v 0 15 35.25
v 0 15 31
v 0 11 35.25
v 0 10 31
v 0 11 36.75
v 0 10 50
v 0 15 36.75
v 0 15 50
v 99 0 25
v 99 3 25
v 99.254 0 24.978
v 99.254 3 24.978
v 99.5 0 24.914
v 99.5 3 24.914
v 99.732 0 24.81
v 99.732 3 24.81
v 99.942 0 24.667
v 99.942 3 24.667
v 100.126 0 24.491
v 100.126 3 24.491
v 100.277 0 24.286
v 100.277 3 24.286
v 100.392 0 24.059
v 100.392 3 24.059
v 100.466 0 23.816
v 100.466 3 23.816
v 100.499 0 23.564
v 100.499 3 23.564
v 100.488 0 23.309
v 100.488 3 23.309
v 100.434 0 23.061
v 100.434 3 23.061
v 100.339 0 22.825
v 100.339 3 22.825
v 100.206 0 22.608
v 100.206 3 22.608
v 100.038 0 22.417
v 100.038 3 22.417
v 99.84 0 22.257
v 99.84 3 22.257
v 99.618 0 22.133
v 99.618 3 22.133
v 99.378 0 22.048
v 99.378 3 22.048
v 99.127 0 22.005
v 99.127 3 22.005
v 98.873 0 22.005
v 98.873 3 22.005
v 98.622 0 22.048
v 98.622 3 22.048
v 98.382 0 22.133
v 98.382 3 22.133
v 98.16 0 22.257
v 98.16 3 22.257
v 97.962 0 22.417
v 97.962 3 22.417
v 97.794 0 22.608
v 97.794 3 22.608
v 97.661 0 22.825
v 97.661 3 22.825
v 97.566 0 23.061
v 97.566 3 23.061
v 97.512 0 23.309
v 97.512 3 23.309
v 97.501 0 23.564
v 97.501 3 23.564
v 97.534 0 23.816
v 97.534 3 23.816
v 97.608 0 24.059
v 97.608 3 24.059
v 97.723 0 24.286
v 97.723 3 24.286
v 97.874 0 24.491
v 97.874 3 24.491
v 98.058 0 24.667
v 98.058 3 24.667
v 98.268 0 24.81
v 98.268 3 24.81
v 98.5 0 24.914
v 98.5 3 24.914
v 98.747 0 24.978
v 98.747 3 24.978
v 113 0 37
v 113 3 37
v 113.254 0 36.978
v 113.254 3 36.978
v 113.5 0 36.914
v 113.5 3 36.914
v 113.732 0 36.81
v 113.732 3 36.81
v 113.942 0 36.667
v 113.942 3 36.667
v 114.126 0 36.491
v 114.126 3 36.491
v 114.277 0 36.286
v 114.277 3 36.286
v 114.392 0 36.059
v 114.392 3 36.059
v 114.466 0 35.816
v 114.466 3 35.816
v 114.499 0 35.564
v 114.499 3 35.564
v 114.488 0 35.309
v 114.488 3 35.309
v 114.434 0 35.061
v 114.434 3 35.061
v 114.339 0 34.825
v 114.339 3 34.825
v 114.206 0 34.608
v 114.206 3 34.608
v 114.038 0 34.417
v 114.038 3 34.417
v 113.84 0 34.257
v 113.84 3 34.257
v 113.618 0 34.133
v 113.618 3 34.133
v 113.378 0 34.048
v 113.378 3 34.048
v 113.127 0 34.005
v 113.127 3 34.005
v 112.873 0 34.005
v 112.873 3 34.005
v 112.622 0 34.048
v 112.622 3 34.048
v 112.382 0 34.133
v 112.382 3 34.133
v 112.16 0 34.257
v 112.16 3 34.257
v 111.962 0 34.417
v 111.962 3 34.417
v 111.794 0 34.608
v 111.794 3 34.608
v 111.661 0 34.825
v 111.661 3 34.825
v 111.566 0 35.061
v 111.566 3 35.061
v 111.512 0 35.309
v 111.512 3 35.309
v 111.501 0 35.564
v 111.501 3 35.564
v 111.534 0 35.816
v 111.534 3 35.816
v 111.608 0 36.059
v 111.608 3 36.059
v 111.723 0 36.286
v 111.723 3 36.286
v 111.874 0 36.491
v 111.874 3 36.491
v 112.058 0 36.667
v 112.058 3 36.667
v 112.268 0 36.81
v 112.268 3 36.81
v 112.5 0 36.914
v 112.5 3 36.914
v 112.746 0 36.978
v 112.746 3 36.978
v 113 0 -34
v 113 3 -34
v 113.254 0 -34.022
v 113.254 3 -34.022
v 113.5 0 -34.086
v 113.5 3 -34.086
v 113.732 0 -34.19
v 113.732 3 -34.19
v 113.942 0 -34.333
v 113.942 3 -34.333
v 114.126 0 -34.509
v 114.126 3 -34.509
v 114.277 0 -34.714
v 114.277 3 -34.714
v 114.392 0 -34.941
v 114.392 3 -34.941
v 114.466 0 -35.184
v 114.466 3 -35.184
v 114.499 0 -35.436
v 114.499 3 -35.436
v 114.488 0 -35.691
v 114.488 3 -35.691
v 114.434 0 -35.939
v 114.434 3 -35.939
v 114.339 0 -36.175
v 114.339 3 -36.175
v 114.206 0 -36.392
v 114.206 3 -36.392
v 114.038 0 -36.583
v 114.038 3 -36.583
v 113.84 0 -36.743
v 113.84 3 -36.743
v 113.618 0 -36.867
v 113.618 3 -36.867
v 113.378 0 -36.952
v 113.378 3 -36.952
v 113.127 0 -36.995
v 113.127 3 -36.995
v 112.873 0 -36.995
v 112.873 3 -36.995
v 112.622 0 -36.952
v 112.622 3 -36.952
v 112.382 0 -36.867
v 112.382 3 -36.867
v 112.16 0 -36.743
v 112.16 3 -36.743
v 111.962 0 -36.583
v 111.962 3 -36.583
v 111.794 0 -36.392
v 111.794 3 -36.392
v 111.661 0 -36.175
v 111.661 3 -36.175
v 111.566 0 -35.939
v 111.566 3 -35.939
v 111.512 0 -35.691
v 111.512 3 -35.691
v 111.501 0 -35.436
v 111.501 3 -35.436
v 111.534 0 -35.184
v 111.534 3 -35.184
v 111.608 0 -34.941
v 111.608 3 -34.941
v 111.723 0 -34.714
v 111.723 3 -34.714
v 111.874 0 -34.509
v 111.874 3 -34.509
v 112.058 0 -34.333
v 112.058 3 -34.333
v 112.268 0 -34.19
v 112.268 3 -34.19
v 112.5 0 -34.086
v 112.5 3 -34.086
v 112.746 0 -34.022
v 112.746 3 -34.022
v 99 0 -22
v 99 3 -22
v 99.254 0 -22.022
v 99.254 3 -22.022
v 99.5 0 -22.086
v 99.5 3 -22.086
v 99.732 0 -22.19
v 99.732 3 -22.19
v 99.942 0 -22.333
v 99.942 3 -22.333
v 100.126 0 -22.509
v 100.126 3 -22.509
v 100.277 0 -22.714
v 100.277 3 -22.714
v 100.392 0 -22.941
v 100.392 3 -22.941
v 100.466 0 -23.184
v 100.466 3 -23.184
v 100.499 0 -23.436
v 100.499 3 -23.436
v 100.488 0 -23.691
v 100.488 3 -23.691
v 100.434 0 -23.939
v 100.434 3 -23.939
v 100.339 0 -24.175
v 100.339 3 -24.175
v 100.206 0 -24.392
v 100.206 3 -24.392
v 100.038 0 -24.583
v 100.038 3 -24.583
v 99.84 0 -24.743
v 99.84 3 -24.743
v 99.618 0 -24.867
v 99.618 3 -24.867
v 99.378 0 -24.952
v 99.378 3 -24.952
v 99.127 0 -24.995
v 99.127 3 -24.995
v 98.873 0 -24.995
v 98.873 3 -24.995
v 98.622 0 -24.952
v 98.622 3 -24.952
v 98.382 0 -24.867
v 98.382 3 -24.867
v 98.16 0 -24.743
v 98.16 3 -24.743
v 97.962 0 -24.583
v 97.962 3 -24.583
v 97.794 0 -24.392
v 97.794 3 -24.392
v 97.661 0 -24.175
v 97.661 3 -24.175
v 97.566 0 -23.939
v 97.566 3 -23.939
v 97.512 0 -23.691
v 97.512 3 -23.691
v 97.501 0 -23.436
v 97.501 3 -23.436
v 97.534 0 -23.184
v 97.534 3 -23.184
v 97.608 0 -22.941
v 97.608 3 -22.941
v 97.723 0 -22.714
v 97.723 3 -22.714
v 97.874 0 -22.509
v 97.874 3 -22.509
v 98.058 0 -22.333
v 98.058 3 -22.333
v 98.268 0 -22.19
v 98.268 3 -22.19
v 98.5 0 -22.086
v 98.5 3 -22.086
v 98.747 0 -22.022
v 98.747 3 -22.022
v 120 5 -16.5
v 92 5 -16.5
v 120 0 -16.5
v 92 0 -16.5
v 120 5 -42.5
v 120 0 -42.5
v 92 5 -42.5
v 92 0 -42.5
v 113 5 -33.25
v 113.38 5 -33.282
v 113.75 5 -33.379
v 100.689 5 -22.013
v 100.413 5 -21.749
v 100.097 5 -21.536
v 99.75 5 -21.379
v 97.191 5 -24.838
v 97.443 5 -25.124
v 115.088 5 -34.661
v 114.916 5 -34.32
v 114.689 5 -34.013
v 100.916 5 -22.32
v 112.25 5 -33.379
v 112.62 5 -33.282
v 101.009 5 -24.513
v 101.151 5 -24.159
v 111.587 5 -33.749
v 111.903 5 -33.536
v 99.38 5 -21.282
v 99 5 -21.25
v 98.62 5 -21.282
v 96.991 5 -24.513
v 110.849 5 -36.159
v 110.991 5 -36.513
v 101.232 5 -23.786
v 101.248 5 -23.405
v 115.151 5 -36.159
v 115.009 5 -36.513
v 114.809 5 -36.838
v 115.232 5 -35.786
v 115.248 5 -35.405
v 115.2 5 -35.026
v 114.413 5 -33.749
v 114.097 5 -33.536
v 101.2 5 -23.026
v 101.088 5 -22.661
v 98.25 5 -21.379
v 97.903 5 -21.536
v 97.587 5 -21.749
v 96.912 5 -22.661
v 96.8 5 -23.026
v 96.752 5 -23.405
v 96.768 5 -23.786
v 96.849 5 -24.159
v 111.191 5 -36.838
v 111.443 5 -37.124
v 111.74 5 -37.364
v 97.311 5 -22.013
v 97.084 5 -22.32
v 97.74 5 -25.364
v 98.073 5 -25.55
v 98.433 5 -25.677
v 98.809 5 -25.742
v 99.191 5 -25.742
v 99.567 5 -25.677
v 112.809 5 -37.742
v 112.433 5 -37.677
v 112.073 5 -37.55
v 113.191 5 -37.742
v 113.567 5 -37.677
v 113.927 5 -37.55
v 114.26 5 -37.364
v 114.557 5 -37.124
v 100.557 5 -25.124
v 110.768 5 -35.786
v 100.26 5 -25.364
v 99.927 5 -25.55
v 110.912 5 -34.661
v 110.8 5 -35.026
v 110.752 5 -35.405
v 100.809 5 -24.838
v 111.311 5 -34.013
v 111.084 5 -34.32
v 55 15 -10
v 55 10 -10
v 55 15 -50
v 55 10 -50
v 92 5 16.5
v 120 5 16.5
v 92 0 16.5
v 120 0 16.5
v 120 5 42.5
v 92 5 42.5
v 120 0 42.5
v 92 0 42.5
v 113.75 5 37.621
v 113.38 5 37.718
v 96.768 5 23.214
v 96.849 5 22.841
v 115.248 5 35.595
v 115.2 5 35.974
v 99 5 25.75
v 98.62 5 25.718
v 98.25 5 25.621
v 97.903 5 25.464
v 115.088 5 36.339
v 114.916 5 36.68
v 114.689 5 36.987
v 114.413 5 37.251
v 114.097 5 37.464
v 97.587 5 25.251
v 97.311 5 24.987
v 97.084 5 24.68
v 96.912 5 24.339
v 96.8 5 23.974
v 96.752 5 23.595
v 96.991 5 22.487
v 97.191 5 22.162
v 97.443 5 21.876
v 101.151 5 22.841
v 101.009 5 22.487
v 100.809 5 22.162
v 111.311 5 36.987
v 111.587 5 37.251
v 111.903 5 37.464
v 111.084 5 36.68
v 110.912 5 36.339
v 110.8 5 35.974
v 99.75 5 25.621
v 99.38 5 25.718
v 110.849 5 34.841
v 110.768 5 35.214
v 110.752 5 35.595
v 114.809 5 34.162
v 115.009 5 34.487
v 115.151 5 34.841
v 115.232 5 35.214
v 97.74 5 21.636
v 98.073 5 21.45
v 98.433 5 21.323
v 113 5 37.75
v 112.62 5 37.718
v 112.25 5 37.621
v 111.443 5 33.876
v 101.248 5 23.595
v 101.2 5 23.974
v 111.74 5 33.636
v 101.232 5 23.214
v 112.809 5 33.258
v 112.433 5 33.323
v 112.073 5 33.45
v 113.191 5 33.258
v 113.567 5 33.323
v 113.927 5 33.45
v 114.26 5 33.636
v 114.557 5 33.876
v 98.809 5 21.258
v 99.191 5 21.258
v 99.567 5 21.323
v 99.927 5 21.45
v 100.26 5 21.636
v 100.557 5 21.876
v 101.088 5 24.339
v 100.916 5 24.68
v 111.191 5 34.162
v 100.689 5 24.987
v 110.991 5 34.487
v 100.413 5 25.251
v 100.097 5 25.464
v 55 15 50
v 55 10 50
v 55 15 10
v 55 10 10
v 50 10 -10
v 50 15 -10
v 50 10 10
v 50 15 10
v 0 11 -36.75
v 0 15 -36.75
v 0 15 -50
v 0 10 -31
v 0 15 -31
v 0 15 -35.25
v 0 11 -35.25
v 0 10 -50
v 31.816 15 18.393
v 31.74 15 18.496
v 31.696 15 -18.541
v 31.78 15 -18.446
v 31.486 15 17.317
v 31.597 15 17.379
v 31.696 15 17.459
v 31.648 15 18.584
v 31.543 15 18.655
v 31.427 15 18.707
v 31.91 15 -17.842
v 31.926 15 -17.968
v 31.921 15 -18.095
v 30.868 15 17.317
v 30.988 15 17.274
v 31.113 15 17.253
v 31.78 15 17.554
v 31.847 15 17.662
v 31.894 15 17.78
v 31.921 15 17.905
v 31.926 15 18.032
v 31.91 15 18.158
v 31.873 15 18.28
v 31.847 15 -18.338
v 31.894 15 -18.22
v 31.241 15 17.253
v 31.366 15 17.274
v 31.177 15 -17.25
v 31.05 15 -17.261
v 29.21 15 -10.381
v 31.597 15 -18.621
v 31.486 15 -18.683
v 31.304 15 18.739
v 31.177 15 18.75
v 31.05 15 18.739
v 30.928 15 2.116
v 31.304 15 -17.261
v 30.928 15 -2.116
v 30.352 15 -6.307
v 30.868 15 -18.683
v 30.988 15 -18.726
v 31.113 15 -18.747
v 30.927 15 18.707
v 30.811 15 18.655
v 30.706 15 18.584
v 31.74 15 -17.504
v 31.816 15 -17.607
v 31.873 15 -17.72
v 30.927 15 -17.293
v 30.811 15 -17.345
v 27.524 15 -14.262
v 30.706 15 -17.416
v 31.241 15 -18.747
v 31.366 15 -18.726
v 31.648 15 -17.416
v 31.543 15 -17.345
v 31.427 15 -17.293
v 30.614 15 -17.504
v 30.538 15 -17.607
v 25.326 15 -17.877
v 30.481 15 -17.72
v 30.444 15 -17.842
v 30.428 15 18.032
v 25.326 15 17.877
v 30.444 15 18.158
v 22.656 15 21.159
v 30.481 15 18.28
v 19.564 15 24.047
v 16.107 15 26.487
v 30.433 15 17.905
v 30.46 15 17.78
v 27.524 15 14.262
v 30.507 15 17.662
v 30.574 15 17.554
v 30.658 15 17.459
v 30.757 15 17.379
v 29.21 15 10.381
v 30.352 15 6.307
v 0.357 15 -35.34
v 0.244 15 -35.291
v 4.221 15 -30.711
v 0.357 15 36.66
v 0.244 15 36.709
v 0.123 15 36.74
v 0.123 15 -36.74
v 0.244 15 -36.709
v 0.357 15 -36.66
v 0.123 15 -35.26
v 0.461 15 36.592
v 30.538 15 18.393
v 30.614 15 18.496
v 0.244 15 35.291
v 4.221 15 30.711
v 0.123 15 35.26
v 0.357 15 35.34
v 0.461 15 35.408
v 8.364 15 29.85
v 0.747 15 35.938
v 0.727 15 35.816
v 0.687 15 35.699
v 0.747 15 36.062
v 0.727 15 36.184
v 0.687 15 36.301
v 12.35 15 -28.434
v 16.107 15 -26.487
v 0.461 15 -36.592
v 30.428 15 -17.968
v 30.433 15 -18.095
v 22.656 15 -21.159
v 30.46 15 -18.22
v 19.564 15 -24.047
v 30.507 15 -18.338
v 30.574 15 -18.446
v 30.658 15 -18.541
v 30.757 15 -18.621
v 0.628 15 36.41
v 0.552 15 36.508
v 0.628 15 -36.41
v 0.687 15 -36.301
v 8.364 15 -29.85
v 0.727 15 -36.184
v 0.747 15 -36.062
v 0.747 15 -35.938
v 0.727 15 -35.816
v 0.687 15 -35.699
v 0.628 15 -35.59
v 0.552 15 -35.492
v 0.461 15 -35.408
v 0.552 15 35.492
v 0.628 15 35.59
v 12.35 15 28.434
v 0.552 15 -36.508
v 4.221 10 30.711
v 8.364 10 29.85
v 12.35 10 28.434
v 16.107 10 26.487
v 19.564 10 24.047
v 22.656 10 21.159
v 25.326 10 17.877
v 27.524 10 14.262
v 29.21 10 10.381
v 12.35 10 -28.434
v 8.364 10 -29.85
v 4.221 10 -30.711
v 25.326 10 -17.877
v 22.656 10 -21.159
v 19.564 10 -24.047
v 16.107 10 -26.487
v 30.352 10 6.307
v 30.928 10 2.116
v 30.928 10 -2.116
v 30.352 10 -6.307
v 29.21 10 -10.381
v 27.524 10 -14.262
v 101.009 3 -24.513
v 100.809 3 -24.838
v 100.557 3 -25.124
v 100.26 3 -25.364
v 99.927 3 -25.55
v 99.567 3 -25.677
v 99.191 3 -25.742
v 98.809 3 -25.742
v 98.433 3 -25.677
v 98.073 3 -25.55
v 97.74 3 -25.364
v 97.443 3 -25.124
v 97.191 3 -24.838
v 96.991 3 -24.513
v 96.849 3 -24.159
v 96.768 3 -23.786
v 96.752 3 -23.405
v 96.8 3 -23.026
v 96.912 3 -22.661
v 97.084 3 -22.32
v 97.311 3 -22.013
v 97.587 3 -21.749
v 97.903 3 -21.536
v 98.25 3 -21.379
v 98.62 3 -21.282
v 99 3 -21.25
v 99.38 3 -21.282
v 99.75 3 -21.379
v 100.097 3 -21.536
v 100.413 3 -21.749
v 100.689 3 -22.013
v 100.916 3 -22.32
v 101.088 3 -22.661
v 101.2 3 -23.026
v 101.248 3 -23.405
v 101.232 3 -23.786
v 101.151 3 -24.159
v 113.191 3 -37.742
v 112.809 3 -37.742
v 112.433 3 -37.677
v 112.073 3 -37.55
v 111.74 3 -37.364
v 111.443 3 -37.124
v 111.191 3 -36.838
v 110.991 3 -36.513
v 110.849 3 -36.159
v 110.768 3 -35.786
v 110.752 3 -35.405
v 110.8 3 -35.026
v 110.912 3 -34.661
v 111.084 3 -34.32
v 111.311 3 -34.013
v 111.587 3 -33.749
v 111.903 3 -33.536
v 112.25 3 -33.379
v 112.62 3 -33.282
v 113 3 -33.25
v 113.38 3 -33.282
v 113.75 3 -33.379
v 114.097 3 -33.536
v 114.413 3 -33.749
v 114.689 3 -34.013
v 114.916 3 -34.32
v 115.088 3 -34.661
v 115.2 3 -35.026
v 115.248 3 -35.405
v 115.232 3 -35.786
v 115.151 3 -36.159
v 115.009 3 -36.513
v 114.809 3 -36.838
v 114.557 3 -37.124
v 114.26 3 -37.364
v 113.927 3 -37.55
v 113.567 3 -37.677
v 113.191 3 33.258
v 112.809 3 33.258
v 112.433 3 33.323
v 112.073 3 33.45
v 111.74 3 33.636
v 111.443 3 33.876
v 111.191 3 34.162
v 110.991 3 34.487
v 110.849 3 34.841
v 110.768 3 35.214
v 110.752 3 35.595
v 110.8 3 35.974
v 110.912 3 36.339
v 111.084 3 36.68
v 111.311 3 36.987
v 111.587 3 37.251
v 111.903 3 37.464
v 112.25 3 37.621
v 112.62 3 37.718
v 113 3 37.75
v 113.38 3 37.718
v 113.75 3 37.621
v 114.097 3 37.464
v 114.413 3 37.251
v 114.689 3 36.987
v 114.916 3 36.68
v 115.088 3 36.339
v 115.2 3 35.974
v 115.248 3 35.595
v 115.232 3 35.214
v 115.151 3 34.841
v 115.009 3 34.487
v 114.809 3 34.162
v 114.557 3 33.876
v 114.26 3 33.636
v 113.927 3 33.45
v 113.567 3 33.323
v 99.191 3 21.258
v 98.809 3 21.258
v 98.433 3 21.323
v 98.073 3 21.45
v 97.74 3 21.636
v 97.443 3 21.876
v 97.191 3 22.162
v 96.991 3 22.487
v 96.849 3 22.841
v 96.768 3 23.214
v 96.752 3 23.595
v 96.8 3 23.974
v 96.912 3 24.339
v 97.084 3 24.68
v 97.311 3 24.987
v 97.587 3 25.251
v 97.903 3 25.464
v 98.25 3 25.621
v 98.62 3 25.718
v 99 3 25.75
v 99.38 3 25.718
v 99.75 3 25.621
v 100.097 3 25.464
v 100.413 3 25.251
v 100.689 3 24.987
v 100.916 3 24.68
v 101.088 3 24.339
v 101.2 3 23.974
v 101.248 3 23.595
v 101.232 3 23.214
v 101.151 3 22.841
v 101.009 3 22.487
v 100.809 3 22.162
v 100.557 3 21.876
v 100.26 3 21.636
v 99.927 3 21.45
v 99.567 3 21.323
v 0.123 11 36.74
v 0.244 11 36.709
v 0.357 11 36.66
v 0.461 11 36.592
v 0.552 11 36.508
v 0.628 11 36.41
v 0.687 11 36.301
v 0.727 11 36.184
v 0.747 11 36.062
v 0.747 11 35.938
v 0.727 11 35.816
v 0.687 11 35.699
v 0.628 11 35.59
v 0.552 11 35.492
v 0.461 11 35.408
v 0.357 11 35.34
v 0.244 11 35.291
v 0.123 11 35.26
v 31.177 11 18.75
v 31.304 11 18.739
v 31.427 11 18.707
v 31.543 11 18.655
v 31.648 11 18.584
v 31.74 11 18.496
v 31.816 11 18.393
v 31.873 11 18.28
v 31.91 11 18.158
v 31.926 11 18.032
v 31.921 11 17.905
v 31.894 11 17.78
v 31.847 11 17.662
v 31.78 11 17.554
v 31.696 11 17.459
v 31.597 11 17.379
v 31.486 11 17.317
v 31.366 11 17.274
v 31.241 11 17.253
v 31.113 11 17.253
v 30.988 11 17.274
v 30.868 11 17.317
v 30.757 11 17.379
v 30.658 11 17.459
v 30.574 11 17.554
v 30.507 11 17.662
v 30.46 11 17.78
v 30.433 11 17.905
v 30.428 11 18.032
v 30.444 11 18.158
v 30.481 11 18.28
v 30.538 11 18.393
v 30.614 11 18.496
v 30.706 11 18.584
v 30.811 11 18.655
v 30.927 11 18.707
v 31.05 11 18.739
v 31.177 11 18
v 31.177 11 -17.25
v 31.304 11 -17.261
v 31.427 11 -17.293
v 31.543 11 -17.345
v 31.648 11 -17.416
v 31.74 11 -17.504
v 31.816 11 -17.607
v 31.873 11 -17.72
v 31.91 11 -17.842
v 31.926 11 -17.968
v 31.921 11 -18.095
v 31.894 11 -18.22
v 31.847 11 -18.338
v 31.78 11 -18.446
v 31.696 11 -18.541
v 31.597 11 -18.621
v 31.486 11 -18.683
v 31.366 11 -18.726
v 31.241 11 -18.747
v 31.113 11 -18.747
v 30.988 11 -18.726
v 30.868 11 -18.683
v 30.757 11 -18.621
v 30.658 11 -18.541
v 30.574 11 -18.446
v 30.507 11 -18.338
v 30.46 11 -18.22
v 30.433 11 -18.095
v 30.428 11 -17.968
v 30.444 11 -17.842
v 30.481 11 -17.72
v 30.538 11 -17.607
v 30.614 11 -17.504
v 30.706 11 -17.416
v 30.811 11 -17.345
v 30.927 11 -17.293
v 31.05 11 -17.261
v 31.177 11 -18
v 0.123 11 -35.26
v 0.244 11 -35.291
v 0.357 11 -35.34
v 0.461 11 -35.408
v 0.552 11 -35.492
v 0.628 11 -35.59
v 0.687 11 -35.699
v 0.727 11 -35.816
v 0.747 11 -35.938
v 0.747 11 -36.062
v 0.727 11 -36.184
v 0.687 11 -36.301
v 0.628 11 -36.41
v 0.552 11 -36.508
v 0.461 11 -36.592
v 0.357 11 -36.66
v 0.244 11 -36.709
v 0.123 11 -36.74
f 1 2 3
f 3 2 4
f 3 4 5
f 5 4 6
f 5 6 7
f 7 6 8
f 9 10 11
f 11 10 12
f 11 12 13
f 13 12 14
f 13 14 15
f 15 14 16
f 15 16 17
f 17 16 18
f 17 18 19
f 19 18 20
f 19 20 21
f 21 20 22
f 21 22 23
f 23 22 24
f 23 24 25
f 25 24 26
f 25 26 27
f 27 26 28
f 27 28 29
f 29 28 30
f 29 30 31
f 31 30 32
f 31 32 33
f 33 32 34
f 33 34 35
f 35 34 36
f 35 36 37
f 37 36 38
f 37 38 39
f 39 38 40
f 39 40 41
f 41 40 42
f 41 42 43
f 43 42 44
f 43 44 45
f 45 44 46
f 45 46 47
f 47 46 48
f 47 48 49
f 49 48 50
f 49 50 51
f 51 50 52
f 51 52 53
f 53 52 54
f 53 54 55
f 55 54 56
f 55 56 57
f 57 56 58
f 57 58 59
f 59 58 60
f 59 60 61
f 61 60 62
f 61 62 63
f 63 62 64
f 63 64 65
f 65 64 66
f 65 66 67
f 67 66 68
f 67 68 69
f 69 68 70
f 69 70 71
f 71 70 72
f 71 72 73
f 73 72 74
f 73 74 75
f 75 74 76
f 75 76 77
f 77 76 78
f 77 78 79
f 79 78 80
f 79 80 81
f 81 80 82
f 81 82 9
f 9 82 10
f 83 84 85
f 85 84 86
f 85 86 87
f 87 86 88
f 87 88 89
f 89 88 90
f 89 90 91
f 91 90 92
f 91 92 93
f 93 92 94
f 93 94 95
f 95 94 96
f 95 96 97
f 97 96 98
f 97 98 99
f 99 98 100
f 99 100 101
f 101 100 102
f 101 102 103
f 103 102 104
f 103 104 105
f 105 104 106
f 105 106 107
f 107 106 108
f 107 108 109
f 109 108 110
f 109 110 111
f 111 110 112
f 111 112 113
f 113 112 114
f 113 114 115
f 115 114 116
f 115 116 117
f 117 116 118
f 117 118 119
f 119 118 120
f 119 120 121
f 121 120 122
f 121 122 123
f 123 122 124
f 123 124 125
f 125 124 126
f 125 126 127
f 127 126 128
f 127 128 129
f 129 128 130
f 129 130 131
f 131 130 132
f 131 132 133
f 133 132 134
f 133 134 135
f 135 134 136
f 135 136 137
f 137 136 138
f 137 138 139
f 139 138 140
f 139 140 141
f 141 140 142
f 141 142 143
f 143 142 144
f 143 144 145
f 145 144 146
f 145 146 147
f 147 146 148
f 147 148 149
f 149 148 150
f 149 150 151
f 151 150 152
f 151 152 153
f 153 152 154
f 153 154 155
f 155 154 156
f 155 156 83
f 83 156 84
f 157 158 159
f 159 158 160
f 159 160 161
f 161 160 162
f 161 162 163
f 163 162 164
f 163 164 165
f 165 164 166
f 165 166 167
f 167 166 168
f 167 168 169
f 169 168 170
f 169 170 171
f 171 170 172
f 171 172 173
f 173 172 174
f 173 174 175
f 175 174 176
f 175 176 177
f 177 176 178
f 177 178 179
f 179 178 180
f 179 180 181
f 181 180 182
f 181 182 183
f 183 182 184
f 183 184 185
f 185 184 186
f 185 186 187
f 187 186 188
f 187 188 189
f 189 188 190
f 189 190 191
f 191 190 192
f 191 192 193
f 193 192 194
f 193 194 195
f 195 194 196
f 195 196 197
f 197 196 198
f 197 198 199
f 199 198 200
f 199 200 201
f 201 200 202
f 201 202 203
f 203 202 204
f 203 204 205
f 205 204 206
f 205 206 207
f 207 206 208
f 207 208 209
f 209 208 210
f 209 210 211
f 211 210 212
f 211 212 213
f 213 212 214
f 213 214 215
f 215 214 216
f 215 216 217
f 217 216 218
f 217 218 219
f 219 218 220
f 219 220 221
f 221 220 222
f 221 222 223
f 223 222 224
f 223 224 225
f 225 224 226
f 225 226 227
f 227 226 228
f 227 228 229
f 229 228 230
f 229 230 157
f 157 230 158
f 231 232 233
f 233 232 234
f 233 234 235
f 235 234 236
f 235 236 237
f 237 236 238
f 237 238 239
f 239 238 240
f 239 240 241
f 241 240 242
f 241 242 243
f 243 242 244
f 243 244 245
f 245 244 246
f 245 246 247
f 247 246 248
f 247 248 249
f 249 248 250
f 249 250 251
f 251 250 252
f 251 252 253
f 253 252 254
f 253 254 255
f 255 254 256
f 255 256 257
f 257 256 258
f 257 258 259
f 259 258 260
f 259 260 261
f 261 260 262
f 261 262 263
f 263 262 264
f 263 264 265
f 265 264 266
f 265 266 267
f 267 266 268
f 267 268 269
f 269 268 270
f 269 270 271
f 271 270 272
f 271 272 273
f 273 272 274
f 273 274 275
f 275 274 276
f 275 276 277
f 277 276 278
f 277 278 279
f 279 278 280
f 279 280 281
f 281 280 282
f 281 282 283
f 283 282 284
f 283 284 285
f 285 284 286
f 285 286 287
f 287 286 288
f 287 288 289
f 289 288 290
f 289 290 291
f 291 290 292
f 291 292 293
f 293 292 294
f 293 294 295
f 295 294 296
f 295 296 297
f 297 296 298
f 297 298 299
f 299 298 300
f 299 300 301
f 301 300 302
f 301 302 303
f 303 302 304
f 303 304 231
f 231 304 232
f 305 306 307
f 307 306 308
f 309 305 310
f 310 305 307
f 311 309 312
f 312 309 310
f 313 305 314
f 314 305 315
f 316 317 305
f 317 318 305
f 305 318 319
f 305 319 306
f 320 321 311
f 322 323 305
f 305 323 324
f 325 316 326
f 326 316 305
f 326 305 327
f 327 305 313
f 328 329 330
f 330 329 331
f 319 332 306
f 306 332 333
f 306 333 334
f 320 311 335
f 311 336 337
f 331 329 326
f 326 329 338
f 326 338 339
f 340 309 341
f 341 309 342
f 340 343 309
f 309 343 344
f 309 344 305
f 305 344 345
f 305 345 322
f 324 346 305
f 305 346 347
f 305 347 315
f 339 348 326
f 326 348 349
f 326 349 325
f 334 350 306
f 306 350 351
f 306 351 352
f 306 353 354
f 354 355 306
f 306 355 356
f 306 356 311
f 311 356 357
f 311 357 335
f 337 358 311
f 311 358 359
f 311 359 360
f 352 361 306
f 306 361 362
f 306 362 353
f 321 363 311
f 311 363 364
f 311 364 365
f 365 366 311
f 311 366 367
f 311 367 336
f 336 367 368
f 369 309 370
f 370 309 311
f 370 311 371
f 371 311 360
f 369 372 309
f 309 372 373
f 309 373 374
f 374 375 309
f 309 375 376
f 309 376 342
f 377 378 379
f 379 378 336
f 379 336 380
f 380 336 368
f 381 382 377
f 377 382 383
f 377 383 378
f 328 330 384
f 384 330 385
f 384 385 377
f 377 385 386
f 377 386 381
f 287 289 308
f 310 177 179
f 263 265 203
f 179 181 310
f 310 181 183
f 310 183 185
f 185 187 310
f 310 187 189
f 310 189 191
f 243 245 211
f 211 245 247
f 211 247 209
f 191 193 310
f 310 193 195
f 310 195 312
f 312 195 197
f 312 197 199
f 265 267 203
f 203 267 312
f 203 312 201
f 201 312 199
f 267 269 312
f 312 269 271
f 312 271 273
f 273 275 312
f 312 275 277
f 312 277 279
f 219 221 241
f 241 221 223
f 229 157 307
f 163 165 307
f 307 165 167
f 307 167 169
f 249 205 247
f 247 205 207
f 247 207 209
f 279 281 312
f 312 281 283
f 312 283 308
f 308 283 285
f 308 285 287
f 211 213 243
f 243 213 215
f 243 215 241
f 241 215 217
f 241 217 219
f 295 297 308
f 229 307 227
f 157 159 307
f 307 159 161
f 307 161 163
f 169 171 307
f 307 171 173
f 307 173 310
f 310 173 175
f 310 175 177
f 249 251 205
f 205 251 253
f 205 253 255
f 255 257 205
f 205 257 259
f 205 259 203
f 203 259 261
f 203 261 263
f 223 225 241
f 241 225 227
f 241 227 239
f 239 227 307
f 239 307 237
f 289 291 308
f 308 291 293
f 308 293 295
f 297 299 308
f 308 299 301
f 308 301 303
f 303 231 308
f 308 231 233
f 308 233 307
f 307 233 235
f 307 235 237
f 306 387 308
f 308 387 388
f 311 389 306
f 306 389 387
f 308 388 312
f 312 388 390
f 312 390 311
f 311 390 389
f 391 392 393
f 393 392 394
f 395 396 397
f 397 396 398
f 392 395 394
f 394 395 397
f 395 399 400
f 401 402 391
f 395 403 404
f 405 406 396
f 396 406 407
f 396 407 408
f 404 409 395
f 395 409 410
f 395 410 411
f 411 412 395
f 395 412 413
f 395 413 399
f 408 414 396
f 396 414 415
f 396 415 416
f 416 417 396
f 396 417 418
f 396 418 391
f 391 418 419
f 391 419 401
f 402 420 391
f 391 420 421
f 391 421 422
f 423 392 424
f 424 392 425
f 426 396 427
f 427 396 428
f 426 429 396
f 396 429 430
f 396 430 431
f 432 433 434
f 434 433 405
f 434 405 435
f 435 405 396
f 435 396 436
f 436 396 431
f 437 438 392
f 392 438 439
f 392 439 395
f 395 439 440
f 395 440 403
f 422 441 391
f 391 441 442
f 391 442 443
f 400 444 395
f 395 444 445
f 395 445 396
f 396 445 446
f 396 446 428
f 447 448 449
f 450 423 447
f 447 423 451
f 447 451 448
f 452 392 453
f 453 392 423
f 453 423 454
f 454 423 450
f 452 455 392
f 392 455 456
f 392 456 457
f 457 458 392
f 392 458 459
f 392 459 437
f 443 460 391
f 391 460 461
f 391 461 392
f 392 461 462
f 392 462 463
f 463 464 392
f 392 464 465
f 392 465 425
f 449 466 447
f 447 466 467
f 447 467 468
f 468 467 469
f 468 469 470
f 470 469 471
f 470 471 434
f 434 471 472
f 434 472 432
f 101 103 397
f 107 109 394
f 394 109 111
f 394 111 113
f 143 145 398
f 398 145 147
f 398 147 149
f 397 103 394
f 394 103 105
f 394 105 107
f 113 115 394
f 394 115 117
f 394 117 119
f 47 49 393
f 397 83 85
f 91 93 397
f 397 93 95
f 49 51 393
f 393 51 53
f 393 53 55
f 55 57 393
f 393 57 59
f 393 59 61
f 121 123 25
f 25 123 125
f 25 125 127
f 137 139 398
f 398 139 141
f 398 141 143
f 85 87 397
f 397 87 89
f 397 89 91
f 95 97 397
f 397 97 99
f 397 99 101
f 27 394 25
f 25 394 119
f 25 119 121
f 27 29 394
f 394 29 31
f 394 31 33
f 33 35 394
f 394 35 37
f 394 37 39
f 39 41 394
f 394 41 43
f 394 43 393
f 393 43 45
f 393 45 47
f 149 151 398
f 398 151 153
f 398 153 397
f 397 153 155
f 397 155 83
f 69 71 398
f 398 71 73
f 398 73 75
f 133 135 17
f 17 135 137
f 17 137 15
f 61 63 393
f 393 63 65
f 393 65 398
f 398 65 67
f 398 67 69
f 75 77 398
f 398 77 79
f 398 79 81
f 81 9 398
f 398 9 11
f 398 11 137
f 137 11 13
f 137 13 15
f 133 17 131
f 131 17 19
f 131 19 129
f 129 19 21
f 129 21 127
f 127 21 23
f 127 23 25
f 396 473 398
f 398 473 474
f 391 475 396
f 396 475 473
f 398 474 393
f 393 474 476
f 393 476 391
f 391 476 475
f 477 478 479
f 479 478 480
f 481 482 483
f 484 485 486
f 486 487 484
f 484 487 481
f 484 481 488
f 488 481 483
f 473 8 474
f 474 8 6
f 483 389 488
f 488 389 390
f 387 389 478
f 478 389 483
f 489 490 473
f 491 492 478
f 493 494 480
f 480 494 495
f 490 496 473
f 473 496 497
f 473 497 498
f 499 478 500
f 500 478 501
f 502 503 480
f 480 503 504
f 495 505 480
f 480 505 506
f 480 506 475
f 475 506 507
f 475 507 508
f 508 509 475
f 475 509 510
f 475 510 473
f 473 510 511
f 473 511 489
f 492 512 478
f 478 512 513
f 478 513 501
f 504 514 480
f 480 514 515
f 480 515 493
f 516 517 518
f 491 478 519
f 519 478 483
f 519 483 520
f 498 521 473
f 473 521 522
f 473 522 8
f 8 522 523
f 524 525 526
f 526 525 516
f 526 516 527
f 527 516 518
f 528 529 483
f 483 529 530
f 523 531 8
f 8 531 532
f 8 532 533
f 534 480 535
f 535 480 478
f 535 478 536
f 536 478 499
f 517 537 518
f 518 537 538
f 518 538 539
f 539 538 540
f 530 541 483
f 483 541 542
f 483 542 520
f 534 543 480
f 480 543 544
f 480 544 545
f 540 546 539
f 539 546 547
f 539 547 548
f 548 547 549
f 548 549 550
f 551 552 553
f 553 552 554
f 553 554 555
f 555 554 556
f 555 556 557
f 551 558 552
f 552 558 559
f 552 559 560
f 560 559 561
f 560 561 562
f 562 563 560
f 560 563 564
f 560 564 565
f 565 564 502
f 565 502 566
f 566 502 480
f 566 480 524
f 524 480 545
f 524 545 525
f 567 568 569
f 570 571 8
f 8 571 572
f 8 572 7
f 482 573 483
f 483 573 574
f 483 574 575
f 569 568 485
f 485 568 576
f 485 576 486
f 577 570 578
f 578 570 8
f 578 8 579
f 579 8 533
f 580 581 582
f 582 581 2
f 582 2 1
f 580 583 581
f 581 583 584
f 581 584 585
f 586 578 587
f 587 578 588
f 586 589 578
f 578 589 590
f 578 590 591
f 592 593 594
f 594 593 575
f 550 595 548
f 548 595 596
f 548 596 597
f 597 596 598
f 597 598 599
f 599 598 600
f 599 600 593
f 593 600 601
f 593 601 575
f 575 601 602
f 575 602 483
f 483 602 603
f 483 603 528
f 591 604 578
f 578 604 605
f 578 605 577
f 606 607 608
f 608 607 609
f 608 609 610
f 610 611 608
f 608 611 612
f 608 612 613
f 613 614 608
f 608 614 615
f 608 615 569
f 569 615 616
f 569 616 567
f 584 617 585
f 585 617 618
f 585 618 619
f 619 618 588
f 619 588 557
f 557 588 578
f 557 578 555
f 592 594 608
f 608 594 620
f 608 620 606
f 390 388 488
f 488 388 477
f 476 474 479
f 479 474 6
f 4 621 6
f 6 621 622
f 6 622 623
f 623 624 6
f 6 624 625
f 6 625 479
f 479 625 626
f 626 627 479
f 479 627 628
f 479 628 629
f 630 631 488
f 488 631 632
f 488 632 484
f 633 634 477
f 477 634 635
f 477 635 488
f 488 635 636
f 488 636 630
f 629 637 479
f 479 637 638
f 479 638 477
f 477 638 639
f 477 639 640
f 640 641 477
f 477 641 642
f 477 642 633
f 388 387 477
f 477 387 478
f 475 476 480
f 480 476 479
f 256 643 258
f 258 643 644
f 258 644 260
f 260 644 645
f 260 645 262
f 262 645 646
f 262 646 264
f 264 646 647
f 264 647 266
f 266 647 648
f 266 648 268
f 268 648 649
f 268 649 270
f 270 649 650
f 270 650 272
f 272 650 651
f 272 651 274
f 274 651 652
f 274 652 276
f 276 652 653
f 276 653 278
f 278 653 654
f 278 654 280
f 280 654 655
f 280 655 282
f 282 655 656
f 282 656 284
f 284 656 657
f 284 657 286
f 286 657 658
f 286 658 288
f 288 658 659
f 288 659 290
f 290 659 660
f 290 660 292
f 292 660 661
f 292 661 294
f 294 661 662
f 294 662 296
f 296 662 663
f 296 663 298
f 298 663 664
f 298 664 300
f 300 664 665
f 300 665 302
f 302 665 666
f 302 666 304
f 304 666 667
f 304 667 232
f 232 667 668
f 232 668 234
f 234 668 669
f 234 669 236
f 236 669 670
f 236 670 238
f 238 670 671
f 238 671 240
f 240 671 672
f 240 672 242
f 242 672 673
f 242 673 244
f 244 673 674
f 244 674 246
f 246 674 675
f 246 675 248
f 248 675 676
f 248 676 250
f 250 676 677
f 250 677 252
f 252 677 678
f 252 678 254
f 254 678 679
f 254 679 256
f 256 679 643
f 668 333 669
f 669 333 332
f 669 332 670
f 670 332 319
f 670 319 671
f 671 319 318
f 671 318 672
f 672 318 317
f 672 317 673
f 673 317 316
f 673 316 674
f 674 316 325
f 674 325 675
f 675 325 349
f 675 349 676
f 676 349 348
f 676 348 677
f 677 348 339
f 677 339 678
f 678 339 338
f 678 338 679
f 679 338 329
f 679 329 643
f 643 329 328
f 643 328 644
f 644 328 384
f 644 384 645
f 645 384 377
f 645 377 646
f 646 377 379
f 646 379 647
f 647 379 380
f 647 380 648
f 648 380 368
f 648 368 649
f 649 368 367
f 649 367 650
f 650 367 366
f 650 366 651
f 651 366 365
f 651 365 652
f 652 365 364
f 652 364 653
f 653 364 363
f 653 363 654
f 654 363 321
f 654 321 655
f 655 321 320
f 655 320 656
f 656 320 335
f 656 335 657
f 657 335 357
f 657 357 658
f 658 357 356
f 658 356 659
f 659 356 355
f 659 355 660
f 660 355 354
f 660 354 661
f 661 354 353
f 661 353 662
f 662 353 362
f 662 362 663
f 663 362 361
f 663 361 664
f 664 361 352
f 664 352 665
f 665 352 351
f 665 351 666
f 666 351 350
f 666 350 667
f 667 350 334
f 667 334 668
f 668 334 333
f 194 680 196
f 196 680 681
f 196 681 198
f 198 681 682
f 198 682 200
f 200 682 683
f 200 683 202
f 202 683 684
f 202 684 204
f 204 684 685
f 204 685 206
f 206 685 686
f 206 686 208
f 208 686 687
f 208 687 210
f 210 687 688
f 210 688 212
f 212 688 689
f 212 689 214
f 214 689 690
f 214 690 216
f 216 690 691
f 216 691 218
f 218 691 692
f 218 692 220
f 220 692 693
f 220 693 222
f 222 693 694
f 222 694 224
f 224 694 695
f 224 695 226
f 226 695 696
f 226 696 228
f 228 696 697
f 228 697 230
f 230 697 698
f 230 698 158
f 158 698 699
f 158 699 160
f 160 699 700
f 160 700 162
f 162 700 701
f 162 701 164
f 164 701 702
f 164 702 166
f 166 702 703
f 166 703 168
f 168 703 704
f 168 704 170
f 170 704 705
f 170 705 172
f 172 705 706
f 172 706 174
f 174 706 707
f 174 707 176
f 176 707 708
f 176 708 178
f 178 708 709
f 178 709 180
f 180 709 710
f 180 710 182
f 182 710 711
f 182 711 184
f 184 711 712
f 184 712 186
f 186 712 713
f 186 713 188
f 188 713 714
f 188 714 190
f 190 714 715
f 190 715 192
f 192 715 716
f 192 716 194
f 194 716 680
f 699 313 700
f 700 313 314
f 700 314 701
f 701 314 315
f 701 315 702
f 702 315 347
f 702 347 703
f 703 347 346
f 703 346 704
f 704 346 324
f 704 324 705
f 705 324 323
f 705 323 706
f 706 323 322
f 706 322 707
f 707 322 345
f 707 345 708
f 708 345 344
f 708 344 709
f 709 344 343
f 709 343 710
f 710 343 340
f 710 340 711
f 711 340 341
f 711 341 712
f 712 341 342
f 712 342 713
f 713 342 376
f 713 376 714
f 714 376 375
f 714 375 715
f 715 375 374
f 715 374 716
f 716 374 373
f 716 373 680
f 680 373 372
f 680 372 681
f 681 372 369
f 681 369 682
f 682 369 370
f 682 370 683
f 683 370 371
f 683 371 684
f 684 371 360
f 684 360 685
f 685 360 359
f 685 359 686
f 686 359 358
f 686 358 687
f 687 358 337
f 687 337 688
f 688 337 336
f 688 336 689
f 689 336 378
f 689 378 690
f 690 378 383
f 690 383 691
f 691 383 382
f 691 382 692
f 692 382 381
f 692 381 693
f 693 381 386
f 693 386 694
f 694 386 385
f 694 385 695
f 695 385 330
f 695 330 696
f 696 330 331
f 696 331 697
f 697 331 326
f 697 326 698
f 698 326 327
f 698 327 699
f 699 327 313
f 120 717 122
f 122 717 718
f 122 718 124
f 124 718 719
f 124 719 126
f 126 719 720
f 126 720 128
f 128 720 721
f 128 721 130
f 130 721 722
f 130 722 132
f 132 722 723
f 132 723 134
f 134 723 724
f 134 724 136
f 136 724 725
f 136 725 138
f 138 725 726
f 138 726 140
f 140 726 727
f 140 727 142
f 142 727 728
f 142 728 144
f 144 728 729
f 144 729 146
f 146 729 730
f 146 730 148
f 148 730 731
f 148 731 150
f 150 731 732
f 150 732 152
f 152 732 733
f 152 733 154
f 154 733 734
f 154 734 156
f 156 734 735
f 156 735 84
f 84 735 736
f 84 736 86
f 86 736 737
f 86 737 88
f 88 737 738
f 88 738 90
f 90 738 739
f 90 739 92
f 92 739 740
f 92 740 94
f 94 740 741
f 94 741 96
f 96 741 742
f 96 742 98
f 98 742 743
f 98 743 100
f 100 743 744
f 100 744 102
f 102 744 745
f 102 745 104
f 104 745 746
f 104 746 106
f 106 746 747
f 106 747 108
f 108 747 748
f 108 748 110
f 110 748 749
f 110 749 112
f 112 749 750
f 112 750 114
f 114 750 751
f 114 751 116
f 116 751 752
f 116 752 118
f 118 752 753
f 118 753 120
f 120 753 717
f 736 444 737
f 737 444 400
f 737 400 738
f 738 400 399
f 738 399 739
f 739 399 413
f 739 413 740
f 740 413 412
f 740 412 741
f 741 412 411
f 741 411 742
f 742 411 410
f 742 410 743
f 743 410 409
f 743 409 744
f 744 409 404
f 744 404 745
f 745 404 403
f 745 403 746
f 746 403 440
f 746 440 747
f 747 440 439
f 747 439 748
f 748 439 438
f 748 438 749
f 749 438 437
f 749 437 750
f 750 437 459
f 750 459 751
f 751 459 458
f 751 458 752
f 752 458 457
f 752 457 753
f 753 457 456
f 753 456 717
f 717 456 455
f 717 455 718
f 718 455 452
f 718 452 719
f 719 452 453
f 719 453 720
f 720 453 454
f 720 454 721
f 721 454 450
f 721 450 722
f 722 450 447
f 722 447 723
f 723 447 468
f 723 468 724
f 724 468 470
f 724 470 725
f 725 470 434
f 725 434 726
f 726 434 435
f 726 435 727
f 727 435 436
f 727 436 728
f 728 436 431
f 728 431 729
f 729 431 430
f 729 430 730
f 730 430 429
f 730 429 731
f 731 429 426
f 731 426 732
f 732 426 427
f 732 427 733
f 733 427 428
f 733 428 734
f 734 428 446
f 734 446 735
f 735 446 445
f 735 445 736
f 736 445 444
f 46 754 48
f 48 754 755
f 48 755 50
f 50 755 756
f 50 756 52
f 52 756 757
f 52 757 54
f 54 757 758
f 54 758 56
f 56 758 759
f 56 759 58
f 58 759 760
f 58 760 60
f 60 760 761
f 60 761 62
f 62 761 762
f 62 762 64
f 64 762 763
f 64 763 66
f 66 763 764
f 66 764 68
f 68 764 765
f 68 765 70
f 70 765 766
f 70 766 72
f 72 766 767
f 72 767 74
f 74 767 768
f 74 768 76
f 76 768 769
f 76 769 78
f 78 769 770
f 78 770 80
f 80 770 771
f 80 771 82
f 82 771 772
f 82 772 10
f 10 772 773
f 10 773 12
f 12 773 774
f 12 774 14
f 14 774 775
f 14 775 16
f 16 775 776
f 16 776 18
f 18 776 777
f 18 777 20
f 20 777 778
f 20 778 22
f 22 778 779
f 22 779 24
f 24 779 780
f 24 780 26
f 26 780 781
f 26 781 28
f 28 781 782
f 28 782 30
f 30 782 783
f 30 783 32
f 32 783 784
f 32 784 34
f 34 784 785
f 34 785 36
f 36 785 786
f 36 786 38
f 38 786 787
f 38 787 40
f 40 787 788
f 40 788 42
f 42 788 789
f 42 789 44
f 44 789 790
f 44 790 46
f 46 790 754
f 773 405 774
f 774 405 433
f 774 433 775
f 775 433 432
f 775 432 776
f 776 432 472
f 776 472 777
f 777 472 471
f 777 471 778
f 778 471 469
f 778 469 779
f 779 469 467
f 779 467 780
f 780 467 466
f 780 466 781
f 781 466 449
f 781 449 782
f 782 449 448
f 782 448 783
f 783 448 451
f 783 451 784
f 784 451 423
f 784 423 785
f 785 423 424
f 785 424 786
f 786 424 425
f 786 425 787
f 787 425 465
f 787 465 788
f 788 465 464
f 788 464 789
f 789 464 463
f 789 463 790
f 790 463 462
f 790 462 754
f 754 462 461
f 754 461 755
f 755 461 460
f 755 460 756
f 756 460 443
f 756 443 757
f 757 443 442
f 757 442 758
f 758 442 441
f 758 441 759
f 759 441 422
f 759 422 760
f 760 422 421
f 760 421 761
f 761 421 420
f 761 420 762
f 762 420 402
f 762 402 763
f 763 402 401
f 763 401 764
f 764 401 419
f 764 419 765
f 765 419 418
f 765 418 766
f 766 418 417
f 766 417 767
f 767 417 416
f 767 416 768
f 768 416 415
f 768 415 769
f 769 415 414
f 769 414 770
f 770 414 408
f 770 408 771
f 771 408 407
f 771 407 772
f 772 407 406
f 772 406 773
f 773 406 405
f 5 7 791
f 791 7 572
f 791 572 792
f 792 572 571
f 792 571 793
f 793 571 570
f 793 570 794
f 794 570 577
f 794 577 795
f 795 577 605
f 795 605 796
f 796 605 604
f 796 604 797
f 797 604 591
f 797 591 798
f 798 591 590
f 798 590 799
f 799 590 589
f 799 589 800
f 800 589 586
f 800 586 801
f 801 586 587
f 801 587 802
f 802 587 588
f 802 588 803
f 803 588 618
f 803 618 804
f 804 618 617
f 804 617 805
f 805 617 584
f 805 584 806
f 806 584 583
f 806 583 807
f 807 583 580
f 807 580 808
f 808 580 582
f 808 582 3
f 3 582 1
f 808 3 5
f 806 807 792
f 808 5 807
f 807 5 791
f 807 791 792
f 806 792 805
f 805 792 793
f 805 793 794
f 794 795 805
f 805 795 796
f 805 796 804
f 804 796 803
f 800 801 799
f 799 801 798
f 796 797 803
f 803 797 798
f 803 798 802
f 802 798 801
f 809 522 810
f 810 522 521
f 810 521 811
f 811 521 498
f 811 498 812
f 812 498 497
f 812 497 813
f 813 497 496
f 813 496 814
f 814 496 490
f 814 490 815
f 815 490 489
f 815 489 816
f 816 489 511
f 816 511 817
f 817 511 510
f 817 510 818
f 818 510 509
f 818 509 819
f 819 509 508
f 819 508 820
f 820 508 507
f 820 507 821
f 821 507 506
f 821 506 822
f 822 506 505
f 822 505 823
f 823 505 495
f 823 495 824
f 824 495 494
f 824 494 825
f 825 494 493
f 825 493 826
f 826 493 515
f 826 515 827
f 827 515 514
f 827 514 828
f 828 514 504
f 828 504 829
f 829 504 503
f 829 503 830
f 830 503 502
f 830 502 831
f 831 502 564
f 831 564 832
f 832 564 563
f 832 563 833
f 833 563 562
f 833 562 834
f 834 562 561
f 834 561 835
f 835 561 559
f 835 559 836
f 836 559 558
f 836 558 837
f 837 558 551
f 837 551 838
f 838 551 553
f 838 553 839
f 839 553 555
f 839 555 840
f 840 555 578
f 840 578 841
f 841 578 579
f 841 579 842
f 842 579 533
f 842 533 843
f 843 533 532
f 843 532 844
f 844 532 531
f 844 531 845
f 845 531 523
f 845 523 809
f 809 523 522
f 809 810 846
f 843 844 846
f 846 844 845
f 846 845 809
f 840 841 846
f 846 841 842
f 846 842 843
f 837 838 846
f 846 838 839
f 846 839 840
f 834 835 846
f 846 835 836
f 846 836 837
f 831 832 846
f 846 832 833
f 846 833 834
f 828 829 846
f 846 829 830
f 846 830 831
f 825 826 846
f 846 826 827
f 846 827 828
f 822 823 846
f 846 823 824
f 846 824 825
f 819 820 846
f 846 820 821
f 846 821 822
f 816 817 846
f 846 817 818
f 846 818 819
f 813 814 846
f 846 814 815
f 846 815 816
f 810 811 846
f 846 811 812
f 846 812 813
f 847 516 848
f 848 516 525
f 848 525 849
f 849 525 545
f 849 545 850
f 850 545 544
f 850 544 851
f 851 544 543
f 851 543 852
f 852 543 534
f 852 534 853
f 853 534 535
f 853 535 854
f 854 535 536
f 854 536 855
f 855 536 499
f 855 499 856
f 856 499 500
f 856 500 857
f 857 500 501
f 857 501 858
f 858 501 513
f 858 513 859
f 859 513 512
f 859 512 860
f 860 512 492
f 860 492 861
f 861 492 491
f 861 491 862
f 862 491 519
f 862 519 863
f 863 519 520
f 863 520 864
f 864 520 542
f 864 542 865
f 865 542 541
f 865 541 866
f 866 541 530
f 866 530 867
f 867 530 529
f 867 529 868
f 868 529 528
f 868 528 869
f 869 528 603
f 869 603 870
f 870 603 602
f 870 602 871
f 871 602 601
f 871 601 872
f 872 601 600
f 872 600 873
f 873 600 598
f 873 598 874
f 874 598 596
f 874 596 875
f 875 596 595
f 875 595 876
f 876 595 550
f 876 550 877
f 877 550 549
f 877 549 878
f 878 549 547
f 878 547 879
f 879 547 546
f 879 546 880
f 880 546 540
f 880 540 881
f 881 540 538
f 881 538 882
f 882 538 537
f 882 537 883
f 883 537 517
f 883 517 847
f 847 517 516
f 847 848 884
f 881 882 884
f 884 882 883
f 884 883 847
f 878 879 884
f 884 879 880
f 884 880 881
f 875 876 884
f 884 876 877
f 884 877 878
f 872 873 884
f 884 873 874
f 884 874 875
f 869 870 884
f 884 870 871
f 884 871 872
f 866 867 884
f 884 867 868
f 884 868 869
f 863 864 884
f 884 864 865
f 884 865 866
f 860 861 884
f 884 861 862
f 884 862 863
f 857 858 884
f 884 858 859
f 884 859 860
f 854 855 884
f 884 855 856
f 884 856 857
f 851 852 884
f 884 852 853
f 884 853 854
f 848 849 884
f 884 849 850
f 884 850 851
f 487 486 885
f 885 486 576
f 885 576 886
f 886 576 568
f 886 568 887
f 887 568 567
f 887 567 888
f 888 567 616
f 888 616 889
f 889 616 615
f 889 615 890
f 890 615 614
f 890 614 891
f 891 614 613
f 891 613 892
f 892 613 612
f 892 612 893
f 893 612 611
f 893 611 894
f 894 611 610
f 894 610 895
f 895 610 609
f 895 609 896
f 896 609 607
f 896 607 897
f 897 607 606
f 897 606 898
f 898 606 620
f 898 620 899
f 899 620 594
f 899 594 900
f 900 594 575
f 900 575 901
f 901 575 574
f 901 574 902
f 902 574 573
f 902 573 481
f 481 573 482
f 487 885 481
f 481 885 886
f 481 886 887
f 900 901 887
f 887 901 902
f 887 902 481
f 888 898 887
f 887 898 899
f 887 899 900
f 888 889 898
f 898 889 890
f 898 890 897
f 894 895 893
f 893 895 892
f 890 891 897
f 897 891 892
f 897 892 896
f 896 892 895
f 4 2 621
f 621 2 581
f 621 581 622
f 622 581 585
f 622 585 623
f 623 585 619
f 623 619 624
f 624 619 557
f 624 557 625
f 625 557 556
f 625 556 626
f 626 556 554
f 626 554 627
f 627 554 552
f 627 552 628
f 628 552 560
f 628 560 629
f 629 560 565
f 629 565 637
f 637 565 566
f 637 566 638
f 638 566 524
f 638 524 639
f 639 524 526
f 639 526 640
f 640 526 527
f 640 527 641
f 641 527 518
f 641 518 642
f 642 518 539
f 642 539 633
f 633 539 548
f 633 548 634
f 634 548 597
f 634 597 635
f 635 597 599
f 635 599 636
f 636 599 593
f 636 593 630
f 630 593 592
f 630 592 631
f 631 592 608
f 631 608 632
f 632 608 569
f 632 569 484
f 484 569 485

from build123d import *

# Parameters (mm, degrees)
SKETCH_1_W          = 28
SKETCH_1_H          = 26
EXTRUDE_1_DEPTH     = 5
EXTRUDE_1_2_DEPTH   = 5
EXTRUDE_START       = 10
SKETCH_1_12_W       = 50
SKETCH_1_12_H       = 100
EXTRUDE_2_DEPTH     = 5
SKETCH_2_W          = 40
SKETCH_2_H          = 5
EXTRUDE_3_DEPTH     = 5
SKETCH_3_R          = 1.5
CUT_EXTRUDE_1_DEPTH = 131.38404815
SKETCH_3_3_R        = 2.25
CUT_EXTRUDE_2_DEPTH = 2
SKETCH_4_R          = 0.75
CUT_EXTRUDE_3_DEPTH = 4
SKETCH_5_R          = 31
CUT_EXTRUDE_4_DEPTH = 131.862523333
SKETCH_6_W          = 400
SKETCH_6_H          = 200
CUT_EXTRUDE_5_DEPTH = 131.862523333


with BuildPart() as part:
    # 草图1 → 凸台-拉伸1 (new body)
    with BuildSketch(Plane(origin=(0, 0, 0), x_dir=(1, 0, 0), z_dir=(0, 1, 0))):
        with Locations((106, 29.5)):
            Rectangle(SKETCH_1_W, SKETCH_1_H)
    extrude(amount=EXTRUDE_1_DEPTH)


with BuildPart() as body_2:
    # 草图1 → Extrude 1 2 (new body)
    with BuildSketch(Plane(origin=(0, 0, 0), x_dir=(1, 0, 0), z_dir=(0, 1, 0))):
        with Locations((106, -29.5)):
            Rectangle(SKETCH_1_W, SKETCH_1_H)
    extrude(amount=EXTRUDE_1_2_DEPTH)


with BuildPart() as body_3:
    # 草图1<12> → 凸台-拉伸2 (new body)
    with BuildSketch(Plane(origin=(0, 0, 0), x_dir=(1, 0, 0), z_dir=(0, 1, 0)).offset(EXTRUDE_START)):
        with Locations((25, 0)):
            Rectangle(SKETCH_1_12_W, SKETCH_1_12_H)
    extrude(amount=EXTRUDE_2_DEPTH)

    # 草图2 → 凸台-拉伸3 (add)
    with BuildSketch(Plane(origin=(50, 0, 0), x_dir=(0, 0, -1), z_dir=(1, 0, 0))):
        with Locations((30, 12.5)):
            Rectangle(SKETCH_2_W, SKETCH_2_H)
        with Locations((-30, 12.5)):
            Rectangle(SKETCH_2_W, SKETCH_2_H)
    extrude(amount=EXTRUDE_3_DEPTH)


    add(body_2.part)  # loft_5 joins it to this body
    # loft from a face of the part (loft_5)
    loft([body_3.faces().sort_by_distance((55, 12.5, 30))[0], body_3.faces().sort_by_distance((92, 2.5, 29.5))[0]])


    add(part.part)  # loft_6 joins it to this body
    # loft from a face of the part (loft_6)
    loft([body_3.faces().sort_by_distance((55, 12.5, -30))[0], body_3.faces().sort_by_distance((92, 2.5, -29.5))[0]])

    # 草图3 → 切除-拉伸1 (cut, through all)
    with BuildSketch(Plane(origin=(0, 5, 0), x_dir=(1, 0, 0), z_dir=(0, 1, 0))):
        with Locations(Location((113, 35.5, 0), (0, 0, 270))):
            Circle(SKETCH_3_R)
        with Locations(Location((99, 23.5, 0), (0, 0, 270))):
            Circle(SKETCH_3_R)
        with Locations(Location((113, -35.5, 0), (0, 0, 270))):
            Circle(SKETCH_3_R)
        with Locations(Location((99, -23.5, 0), (0, 0, 270))):
            Circle(SKETCH_3_R)
    extrude(amount=-CUT_EXTRUDE_1_DEPTH, mode=Mode.SUBTRACT)

    # 草图3<3> → 切除-拉伸2 (cut)
    with BuildSketch(Plane(origin=(0, 5, 0), x_dir=(1, 0, 0), z_dir=(0, 1, 0))):
        with Locations(Location((99, 23.5, 0), (0, 0, 270))):
            Circle(SKETCH_3_3_R)
        with Locations(Location((113, 35.5, 0), (0, 0, 270))):
            Circle(SKETCH_3_3_R)
        with Locations(Location((113, -35.5, 0), (0, 0, 270))):
            Circle(SKETCH_3_3_R)
        with Locations(Location((99, -23.5, 0), (0, 0, 270))):
            Circle(SKETCH_3_3_R)
    extrude(amount=-CUT_EXTRUDE_2_DEPTH, mode=Mode.SUBTRACT)

    # 草图4 → 切除-拉伸3 (cut)
    with BuildSketch(Plane(origin=(0, 15, 0), x_dir=(1, 0, 0), z_dir=(0, 1, 0))):
        with Locations((0, 36)):
            Circle(SKETCH_4_R)
        with Locations(Location((31.176914536, 18, 0), (0, 0, 270))):
            Circle(SKETCH_4_R)
        with Locations(Location((31.176914536, -18, 0), (0, 0, 270))):
            Circle(SKETCH_4_R)
        with Locations((0, -36)):
            Circle(SKETCH_4_R)
    extrude(amount=-CUT_EXTRUDE_3_DEPTH, mode=Mode.SUBTRACT)

    # 草图5 → 切除-拉伸4 (cut, through all)
    with BuildSketch(Plane(origin=(0, 15, 0), x_dir=(1, 0, 0), z_dir=(0, 1, 0))):
        Circle(SKETCH_5_R)
    extrude(amount=-CUT_EXTRUDE_4_DEPTH, mode=Mode.SUBTRACT)


with BuildPart() as body_2_2:
    # 镜向1: mirrored copy
    add(body_3.part.mirror(Plane(origin=(0, 0, 0), x_dir=(0, 0, 1), z_dir=(1, 0, 0))))

    # 草图6 → 切除-拉伸5 (cut, through all)
    with BuildSketch(Plane(origin=(0, 0, 0), x_dir=(0, 0, -1), z_dir=(1, 0, 0))):
        Rectangle(SKETCH_6_W, SKETCH_6_H)
    extrude(amount=-CUT_EXTRUDE_5_DEPTH, mode=Mode.SUBTRACT)


solid = body_3.part
